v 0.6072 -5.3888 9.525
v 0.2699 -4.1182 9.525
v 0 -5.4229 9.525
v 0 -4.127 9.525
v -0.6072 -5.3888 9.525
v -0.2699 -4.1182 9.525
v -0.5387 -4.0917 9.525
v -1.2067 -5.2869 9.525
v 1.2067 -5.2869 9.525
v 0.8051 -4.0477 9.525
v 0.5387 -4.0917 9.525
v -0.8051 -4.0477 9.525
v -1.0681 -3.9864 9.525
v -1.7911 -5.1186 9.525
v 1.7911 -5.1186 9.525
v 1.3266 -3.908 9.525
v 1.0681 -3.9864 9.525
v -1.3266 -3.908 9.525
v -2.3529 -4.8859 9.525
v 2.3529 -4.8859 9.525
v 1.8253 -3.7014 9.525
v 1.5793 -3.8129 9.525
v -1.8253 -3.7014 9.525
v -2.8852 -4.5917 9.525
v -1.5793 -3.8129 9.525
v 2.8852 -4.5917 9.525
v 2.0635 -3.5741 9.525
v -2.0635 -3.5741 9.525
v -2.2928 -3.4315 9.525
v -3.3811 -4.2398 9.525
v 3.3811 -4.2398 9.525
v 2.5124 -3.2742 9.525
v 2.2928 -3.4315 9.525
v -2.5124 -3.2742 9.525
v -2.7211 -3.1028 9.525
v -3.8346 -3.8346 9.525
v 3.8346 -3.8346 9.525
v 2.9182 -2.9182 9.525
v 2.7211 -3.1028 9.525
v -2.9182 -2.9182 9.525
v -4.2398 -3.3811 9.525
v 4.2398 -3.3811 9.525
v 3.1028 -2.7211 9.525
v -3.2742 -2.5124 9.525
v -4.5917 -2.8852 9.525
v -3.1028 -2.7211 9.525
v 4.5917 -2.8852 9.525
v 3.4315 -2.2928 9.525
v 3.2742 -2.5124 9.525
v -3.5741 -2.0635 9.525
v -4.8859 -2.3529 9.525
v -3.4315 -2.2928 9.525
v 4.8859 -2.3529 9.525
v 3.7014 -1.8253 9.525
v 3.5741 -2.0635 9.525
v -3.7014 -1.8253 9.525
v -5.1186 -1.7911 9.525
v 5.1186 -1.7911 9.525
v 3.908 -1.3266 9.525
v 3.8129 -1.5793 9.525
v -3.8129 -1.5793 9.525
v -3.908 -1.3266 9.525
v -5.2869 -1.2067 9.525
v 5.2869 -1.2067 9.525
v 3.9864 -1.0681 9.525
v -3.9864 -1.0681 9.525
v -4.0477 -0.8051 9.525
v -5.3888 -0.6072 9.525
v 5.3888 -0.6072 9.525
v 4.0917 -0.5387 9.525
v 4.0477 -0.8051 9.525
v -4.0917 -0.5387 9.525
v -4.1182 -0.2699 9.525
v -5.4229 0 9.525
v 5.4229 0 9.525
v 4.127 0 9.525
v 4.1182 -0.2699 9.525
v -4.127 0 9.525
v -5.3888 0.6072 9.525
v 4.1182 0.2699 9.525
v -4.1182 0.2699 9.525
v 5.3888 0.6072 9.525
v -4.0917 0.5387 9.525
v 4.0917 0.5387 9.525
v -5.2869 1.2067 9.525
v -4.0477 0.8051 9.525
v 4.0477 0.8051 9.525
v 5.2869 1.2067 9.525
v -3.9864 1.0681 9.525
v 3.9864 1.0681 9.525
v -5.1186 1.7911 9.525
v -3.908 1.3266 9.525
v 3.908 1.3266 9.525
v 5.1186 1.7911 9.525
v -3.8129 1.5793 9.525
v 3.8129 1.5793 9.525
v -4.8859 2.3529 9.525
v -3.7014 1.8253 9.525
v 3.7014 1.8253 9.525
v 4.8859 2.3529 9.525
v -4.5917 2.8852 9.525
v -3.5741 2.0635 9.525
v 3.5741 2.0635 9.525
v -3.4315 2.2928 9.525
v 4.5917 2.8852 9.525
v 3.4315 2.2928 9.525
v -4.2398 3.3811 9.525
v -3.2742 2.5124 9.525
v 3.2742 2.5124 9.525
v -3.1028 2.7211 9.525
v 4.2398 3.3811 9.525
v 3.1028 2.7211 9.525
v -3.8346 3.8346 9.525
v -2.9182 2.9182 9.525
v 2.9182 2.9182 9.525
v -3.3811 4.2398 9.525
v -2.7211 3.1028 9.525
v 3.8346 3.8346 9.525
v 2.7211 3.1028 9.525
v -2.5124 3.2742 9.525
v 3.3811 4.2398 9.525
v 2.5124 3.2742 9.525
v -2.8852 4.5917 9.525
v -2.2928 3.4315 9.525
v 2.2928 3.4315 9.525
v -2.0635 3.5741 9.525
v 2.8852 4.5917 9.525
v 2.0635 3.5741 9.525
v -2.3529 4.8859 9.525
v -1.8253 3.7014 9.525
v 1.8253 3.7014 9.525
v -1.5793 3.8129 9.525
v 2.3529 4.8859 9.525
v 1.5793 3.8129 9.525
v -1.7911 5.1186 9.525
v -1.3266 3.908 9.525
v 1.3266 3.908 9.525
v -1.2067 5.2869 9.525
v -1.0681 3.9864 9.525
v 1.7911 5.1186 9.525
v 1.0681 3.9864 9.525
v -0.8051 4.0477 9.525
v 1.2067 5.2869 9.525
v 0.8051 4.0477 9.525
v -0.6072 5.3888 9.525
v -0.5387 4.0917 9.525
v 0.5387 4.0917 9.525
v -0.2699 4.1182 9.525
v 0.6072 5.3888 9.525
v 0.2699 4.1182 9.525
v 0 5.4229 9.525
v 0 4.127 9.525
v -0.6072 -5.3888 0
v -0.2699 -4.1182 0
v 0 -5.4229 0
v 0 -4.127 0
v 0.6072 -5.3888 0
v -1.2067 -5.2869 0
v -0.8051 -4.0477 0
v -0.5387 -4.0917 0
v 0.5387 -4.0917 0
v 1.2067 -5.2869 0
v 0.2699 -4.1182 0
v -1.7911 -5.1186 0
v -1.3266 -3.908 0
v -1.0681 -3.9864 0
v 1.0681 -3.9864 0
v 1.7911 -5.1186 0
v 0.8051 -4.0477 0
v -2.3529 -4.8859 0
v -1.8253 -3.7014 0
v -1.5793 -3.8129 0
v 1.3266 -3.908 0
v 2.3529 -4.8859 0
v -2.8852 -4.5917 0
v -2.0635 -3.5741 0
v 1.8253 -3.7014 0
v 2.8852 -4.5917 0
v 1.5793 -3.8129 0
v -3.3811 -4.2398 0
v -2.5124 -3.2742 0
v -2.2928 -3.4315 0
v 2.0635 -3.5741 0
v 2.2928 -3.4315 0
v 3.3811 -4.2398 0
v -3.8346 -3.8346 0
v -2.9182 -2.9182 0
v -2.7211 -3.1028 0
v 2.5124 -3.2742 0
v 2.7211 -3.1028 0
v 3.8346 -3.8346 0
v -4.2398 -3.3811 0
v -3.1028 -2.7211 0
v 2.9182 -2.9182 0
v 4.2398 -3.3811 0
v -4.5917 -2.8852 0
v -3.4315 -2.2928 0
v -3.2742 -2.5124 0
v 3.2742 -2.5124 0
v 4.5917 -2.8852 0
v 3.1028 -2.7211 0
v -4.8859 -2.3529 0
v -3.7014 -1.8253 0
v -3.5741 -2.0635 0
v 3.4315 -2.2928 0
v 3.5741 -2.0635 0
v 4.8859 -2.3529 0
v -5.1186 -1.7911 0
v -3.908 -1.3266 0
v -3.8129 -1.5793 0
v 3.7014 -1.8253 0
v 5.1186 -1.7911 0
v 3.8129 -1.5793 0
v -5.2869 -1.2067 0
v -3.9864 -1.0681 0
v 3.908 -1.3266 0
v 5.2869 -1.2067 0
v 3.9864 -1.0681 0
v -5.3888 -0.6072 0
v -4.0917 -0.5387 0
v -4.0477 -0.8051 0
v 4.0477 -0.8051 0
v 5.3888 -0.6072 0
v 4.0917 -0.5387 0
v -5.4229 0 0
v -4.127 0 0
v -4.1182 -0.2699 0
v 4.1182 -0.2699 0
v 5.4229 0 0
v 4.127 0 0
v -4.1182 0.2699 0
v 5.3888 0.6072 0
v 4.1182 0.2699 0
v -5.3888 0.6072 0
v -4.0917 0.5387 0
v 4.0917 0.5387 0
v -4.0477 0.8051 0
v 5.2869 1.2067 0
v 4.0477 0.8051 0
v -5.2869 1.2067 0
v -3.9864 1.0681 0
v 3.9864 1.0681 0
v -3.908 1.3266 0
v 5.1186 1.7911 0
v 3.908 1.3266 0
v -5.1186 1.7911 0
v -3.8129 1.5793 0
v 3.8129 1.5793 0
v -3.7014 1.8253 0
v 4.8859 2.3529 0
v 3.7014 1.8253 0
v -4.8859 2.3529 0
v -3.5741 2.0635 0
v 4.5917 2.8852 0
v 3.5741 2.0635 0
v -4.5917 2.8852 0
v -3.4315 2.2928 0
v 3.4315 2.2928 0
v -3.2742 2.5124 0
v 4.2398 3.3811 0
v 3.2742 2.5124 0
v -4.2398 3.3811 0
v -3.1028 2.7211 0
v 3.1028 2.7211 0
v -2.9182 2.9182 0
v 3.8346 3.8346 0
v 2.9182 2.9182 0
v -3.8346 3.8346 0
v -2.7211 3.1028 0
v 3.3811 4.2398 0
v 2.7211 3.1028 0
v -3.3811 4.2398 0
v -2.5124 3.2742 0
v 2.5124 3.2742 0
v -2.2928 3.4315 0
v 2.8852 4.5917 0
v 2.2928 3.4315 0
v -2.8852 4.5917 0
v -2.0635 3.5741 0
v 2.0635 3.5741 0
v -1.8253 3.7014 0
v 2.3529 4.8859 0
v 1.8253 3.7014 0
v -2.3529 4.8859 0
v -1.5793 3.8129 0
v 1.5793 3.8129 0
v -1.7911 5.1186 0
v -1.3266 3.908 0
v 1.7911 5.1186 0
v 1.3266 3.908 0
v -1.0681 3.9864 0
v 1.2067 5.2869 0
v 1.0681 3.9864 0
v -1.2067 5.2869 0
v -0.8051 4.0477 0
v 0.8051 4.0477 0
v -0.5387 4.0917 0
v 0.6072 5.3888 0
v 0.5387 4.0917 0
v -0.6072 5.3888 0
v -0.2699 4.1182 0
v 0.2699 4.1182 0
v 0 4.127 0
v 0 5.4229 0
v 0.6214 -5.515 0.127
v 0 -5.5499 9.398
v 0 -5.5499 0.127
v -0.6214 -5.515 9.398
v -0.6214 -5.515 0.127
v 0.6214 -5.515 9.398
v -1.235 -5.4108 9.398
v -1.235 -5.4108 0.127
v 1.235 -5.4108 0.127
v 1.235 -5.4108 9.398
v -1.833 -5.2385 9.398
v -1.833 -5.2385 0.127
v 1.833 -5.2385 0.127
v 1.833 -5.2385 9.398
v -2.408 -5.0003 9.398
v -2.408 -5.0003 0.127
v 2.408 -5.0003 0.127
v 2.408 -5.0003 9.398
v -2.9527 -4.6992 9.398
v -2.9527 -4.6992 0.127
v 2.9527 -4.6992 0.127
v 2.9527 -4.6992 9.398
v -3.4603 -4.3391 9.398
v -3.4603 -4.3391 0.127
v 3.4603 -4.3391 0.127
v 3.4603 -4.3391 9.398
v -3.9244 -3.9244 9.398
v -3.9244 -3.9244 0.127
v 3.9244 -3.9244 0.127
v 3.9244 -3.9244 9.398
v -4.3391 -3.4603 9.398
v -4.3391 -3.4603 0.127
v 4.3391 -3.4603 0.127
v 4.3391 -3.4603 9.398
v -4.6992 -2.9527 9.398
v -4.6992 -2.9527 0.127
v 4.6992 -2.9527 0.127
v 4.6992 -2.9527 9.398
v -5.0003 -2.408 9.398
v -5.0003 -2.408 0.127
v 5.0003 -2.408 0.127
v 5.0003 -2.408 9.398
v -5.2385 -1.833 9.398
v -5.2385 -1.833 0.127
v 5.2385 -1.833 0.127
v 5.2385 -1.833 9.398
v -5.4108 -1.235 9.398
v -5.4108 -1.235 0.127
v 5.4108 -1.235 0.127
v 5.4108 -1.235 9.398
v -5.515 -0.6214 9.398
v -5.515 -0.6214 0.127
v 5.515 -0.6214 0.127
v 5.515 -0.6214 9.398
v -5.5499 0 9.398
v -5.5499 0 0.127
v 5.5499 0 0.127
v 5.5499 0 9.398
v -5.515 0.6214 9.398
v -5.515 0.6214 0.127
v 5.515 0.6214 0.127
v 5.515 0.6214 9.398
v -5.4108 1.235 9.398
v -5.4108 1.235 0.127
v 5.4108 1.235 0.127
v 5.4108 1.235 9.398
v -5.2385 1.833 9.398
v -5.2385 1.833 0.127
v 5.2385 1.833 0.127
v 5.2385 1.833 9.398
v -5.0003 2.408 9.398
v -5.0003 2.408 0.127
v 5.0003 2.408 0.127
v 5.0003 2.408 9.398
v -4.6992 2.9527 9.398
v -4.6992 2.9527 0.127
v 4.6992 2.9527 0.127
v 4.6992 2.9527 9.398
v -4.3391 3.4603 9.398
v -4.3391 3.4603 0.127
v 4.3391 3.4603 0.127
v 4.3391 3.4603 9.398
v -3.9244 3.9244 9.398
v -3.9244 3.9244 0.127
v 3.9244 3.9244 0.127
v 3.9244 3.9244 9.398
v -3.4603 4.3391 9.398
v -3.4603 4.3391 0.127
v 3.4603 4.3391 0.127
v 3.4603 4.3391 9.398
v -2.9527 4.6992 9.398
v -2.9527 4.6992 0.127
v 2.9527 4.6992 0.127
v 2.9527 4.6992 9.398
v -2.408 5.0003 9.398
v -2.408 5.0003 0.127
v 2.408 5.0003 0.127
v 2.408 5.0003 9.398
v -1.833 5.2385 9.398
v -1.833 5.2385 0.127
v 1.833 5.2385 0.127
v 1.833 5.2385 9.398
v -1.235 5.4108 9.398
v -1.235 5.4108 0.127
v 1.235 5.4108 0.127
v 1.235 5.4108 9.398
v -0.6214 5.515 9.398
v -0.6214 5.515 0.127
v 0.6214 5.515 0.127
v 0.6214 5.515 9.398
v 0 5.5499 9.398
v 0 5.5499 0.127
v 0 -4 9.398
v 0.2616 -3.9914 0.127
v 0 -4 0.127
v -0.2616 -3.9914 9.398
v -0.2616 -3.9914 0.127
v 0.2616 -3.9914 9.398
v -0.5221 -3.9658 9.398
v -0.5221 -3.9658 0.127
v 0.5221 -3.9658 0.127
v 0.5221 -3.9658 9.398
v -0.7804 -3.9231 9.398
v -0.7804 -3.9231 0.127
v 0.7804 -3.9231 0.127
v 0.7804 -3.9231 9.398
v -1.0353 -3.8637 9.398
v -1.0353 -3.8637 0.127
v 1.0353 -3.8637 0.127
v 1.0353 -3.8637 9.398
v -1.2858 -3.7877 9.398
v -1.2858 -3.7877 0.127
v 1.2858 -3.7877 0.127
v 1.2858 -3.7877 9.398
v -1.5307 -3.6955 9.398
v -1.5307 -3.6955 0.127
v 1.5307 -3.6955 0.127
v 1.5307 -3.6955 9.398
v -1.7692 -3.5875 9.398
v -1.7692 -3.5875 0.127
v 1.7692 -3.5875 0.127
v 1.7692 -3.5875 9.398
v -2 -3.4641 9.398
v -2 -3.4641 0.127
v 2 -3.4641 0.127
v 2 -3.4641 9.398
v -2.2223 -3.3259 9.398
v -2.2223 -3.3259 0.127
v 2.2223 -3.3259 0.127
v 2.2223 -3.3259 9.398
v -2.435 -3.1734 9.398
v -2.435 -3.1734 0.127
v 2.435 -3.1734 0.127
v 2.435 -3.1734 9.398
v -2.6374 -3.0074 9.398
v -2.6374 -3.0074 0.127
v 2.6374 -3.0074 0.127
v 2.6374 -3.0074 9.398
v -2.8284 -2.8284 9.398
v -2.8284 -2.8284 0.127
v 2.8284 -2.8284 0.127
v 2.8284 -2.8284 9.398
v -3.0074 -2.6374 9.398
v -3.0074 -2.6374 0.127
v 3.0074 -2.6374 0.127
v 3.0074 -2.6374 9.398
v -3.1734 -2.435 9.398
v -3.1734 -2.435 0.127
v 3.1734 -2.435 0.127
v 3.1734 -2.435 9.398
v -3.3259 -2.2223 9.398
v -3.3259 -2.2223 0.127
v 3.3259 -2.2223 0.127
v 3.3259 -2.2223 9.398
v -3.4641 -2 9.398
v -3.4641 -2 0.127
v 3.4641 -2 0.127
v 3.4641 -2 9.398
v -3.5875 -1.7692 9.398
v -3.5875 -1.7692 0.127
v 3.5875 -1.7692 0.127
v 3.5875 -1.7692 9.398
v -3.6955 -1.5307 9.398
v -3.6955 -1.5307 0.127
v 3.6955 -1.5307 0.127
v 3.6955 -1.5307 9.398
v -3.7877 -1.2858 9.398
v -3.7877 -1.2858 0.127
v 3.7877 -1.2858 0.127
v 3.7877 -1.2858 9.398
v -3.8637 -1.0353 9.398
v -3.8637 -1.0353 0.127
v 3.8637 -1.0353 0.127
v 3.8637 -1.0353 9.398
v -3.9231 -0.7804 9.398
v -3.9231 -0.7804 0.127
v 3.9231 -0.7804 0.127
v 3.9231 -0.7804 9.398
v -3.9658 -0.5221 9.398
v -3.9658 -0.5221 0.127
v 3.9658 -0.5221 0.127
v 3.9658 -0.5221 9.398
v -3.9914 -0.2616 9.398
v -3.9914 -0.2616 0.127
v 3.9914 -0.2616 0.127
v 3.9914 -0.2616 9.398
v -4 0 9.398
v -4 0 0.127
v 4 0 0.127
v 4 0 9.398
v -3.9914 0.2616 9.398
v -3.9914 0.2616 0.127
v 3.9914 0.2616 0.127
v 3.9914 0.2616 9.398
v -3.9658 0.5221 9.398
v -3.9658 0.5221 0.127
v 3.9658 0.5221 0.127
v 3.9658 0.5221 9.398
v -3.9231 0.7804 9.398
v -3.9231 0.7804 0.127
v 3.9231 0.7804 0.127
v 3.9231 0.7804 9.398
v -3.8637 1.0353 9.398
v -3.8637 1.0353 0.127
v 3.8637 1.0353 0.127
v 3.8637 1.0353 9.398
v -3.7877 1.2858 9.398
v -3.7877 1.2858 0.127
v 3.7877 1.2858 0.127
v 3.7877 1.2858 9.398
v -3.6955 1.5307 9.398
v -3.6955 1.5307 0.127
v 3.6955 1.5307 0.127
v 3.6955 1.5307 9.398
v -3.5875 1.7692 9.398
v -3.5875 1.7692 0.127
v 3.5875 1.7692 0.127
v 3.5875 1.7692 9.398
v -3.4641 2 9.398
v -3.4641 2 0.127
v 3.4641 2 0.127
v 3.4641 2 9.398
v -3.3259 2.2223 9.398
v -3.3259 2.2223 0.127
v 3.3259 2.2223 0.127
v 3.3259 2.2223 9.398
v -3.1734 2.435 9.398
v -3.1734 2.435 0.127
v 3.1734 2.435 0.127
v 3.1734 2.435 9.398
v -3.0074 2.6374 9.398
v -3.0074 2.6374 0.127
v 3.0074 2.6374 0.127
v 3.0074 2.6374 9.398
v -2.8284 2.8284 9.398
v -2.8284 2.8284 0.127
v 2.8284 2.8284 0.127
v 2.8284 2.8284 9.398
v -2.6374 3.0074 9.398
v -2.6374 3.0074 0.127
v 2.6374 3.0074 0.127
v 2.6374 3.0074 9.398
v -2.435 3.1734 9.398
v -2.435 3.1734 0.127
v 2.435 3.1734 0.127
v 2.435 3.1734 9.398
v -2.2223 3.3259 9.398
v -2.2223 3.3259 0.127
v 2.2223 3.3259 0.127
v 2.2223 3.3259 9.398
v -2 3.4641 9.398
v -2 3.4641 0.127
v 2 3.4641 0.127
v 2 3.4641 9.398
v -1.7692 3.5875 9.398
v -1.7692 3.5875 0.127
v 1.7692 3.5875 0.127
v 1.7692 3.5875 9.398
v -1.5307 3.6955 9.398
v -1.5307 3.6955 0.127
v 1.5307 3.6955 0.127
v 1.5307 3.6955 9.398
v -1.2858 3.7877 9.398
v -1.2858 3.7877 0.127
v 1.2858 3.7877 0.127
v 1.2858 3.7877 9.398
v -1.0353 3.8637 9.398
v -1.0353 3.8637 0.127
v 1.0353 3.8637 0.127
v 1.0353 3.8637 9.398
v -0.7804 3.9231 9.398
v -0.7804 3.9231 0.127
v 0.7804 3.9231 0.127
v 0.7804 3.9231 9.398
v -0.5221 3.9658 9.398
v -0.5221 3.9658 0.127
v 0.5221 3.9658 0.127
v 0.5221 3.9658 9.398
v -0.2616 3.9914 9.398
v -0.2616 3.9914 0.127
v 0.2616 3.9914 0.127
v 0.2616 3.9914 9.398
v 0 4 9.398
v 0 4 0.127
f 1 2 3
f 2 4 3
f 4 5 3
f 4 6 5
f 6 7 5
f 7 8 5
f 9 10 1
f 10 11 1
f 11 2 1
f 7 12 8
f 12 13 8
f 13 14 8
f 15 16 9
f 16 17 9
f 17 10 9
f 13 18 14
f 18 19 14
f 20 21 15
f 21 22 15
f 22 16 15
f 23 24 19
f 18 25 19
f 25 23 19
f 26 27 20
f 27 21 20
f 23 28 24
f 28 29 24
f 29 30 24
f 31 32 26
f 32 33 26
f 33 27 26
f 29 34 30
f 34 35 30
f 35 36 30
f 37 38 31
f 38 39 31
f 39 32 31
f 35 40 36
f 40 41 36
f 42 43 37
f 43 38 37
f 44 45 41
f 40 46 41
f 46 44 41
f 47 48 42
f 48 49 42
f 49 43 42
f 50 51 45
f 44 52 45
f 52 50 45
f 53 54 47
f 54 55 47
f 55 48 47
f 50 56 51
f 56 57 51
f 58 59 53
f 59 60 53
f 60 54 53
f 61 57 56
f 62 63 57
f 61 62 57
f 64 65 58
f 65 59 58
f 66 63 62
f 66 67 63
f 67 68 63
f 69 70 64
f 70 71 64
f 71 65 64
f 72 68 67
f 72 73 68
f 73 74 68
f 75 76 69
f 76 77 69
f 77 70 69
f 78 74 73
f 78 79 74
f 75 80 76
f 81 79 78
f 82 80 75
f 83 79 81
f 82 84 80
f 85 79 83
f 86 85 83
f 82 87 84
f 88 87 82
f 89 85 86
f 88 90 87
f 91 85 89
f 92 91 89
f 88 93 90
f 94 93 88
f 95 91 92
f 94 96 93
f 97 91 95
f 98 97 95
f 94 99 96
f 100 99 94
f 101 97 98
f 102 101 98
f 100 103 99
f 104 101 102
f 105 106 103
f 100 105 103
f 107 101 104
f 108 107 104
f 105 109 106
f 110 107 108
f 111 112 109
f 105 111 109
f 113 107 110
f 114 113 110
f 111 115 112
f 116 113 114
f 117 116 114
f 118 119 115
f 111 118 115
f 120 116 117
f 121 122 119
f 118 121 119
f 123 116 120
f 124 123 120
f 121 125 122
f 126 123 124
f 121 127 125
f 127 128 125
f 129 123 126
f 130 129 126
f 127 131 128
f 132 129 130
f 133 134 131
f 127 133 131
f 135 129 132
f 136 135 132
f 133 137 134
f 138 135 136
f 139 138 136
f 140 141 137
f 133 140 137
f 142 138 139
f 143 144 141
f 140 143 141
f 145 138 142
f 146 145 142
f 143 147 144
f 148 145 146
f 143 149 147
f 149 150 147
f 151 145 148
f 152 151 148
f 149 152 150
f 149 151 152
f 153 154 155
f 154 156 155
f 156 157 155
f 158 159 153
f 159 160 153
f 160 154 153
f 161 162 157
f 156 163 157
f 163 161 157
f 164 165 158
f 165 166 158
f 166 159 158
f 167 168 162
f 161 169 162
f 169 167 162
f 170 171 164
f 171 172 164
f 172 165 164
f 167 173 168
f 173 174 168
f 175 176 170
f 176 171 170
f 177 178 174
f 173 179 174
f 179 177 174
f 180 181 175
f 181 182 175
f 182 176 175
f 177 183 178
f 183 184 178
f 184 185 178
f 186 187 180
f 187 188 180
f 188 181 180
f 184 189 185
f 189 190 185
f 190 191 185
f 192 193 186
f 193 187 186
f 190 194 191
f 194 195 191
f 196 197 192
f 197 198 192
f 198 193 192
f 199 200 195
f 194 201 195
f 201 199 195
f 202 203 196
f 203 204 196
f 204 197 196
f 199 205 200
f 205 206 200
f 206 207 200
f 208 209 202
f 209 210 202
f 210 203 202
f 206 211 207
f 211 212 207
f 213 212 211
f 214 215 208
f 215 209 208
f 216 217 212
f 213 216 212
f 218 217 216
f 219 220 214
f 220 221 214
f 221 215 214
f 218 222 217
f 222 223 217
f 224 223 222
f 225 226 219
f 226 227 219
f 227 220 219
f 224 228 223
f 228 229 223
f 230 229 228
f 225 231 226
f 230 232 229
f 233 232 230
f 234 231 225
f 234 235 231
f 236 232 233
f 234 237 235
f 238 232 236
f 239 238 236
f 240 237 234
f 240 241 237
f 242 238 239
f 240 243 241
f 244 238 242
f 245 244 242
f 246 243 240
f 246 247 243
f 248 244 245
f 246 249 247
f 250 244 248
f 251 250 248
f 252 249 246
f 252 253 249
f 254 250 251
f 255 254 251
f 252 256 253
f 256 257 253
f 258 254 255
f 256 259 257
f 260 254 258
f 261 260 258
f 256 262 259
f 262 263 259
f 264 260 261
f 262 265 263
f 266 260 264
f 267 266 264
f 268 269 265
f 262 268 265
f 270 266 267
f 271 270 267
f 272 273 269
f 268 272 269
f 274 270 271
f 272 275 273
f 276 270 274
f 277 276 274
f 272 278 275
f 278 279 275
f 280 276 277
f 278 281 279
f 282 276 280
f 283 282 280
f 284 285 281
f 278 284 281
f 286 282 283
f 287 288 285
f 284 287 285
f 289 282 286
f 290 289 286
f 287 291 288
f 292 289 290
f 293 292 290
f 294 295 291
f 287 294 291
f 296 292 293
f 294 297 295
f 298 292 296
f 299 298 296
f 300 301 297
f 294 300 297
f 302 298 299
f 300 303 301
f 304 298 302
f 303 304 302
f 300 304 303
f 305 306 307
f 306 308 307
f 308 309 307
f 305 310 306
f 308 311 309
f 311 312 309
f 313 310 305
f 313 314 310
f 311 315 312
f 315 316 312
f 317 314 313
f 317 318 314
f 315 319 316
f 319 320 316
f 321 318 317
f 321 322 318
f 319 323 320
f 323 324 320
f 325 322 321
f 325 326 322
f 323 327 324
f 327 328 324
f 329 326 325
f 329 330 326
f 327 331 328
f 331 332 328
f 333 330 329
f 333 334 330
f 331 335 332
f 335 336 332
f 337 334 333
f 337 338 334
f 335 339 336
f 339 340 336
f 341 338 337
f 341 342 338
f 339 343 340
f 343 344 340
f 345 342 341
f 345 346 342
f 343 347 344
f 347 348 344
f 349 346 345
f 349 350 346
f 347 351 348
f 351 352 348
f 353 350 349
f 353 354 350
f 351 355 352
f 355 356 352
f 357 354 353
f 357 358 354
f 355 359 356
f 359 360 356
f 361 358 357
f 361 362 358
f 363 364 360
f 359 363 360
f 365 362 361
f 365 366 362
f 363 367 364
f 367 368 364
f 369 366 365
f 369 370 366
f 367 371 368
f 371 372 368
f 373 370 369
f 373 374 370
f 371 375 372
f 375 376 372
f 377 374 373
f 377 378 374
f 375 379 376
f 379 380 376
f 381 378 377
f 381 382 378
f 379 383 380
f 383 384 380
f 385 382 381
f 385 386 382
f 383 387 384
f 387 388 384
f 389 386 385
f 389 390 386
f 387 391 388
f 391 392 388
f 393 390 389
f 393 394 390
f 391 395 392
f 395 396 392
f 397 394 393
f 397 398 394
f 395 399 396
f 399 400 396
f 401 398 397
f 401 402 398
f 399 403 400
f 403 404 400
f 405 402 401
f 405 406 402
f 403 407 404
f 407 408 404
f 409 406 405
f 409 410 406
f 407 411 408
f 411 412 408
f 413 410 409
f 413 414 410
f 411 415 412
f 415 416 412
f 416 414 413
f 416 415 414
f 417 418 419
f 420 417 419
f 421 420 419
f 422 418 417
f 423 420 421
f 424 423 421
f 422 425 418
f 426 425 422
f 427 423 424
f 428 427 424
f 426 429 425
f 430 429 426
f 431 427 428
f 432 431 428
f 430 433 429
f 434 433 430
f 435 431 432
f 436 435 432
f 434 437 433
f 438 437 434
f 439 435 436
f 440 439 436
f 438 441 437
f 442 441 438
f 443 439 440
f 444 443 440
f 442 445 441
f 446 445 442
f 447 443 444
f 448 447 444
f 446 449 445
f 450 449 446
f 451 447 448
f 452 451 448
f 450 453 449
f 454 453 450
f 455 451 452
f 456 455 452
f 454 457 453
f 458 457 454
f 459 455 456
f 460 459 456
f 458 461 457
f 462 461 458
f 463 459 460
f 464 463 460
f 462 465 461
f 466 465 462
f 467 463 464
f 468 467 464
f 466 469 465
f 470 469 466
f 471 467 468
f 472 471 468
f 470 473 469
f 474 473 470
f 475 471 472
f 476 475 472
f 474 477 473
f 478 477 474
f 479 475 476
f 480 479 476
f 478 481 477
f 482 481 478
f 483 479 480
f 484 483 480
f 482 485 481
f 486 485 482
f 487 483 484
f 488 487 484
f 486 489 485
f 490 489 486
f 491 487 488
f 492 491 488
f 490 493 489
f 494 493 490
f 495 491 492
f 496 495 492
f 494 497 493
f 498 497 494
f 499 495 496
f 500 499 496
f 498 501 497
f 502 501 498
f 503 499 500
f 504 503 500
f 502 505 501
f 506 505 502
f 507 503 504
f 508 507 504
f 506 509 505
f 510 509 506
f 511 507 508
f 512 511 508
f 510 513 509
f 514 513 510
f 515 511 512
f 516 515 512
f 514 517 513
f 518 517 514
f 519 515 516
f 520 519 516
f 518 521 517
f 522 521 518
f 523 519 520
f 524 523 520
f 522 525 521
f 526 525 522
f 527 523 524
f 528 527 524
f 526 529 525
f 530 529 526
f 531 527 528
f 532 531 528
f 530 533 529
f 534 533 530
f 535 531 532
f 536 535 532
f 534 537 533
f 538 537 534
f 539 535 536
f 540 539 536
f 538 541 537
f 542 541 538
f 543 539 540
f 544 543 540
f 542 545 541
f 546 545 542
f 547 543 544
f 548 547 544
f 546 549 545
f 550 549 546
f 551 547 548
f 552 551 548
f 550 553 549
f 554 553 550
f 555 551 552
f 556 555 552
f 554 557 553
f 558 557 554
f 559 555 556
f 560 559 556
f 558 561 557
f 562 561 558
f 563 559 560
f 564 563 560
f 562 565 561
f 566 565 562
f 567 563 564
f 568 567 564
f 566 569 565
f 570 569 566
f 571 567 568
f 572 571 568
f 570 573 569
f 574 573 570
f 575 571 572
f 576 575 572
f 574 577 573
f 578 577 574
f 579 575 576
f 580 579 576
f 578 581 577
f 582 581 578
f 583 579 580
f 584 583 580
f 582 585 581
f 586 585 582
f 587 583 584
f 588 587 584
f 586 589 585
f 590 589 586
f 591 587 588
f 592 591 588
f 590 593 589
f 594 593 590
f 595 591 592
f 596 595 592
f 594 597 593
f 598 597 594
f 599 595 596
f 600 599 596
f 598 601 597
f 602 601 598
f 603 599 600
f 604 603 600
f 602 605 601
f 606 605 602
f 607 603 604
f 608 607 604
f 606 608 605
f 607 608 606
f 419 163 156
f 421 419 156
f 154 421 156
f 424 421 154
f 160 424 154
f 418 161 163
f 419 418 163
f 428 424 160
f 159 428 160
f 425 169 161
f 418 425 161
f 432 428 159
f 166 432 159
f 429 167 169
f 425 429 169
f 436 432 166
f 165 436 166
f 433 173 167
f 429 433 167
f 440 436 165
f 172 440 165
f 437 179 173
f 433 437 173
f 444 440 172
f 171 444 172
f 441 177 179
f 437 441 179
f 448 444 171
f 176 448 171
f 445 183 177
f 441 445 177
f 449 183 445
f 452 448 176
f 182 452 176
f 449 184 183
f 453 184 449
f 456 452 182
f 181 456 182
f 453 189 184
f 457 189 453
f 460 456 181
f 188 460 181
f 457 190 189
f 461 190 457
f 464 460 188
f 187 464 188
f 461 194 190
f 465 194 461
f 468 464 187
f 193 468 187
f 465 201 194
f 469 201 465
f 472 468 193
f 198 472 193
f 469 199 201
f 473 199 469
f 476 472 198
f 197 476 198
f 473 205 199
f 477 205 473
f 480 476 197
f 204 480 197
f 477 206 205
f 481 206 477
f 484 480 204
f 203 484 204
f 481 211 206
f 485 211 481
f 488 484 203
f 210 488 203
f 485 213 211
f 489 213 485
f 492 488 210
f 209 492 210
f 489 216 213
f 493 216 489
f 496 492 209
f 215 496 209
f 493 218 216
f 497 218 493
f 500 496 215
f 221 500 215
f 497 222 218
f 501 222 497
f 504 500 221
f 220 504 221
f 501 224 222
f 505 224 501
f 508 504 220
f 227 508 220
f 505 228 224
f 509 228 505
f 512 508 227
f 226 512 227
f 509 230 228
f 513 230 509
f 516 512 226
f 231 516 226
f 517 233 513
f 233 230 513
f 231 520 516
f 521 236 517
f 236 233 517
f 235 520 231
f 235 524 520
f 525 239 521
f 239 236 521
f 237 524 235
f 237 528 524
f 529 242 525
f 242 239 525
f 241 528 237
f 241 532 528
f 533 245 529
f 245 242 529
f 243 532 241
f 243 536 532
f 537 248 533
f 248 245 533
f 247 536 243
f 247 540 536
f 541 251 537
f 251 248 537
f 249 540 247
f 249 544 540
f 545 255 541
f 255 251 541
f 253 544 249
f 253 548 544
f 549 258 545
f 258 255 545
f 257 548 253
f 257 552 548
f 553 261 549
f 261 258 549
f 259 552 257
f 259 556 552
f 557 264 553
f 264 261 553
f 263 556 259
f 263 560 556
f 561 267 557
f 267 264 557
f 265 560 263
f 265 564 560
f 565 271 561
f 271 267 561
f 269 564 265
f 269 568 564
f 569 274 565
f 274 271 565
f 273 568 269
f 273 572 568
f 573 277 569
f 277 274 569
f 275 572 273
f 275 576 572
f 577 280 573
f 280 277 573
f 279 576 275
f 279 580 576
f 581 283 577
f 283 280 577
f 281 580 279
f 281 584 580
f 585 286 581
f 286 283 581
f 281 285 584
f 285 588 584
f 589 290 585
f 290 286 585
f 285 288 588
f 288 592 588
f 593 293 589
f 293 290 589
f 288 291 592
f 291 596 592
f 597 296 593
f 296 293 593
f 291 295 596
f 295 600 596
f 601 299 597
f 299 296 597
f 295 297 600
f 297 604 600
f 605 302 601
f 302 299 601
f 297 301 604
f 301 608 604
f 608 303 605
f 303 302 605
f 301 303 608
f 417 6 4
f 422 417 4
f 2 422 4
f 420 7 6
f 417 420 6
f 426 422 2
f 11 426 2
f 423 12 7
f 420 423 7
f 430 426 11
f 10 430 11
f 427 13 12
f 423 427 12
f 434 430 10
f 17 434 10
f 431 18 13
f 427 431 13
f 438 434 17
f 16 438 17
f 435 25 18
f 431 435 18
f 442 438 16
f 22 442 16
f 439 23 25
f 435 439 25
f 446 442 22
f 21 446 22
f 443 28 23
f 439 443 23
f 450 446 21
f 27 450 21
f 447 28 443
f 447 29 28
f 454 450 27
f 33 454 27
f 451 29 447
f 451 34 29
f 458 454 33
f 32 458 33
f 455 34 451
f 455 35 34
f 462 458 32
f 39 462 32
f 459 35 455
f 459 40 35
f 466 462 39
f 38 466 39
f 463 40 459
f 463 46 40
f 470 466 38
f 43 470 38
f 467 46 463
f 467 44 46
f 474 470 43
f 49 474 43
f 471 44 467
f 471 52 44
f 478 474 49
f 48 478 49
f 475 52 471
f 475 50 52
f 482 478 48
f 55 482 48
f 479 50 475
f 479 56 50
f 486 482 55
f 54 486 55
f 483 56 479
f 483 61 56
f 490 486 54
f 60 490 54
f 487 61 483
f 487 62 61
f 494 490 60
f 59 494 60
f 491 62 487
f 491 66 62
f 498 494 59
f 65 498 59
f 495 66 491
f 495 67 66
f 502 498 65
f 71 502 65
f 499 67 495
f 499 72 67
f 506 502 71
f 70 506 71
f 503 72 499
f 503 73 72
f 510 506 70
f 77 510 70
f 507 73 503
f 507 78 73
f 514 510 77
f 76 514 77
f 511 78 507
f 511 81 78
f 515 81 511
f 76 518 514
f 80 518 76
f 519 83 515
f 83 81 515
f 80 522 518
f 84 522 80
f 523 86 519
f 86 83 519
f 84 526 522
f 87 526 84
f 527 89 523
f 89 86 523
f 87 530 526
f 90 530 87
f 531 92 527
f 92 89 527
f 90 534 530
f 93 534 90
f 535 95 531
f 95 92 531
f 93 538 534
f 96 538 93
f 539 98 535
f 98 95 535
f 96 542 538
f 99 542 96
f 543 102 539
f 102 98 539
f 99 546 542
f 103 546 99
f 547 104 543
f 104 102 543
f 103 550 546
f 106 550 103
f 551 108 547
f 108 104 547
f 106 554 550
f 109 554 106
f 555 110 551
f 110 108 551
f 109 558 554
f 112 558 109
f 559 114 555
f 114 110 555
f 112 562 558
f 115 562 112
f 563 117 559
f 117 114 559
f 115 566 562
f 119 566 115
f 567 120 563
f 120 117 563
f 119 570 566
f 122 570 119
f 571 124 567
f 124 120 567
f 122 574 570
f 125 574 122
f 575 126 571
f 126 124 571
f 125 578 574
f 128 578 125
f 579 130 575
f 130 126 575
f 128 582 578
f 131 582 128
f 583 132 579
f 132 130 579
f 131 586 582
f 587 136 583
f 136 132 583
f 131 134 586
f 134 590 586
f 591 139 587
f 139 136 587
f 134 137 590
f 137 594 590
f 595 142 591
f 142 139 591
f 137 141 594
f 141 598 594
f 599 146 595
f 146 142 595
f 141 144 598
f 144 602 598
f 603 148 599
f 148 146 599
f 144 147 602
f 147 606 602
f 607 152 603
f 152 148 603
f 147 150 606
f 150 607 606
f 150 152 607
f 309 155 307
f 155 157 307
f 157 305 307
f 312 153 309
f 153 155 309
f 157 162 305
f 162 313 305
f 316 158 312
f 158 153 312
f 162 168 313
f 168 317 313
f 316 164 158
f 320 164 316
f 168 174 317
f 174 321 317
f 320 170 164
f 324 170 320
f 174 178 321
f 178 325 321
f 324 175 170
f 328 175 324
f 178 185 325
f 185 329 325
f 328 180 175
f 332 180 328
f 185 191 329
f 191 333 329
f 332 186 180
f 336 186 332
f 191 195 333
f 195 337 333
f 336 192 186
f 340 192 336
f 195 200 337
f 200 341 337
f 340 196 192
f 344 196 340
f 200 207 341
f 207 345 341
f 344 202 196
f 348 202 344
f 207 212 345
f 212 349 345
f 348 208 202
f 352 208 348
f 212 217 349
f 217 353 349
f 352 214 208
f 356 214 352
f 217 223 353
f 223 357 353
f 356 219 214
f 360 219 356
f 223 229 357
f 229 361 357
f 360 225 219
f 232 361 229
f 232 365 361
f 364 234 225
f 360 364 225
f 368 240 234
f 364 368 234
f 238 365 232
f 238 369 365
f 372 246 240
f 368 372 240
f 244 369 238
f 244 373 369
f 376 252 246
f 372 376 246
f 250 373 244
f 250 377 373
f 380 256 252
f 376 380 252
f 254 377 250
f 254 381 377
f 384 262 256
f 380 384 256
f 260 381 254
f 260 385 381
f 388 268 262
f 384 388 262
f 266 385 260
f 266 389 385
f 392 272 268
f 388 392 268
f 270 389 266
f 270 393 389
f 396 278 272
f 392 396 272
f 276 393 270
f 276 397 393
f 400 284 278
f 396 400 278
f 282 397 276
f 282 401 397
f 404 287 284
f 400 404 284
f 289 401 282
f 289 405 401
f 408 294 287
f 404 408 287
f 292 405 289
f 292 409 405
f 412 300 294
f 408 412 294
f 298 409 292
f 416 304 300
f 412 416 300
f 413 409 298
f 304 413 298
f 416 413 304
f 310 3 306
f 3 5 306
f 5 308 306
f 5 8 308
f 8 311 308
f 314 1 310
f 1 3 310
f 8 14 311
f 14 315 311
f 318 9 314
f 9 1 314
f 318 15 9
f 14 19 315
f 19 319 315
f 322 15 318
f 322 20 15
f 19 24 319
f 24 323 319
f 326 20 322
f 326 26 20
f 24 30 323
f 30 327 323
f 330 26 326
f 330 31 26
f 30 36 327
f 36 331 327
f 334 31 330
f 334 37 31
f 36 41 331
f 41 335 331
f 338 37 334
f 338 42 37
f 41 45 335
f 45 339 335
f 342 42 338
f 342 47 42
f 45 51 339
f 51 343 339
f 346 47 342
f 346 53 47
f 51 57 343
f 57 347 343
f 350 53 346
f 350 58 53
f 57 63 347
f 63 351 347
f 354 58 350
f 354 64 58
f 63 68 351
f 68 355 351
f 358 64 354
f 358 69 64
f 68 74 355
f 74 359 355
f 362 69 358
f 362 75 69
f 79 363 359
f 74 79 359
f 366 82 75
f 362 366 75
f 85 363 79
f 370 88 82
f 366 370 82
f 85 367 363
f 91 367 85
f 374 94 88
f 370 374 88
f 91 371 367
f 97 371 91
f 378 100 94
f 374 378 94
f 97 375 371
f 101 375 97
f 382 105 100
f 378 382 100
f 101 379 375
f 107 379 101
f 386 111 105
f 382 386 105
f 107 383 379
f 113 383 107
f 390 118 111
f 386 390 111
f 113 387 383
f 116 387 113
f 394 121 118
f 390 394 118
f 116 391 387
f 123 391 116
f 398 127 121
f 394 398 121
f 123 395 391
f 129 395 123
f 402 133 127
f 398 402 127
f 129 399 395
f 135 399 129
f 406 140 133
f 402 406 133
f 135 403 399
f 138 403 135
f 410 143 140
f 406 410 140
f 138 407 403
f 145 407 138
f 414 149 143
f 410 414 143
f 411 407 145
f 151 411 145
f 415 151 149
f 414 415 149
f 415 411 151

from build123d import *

# Parameters (mm, degrees)
SKETCH1_R           = 5.5499
SKETCH1_R_2         = 4.000000001
BOSS_EXTRUDE1_DEPTH = 9.525
CHAMFER1_SIZE       = 0.127


with BuildPart() as part:
    # Sketch1 → Boss-Extrude1 (new body)
    with BuildSketch(Plane.XY):
        with Locations(Location((0, 0, 0), (0, 0, 180))):
            Circle(SKETCH1_R)
        with Locations(Location((0, 0, 0), (0, 0, 180))):
            Circle(SKETCH1_R_2, mode=Mode.SUBTRACT)
    extrude(amount=BOSS_EXTRUDE1_DEPTH)

    # Chamfer1
    chamfer1_edges = [part.edges().sort_by_distance(p)[0] for p in [
        (5.5499, 0, 0),
        (5.5499, 0, 9.525),
        (4.000000001, 0, 0),
        (4.000000001, 0, 9.525),
    ]]
    chamfer(chamfer1_edges, length=CHAMFER1_SIZE)


solid = part.part
